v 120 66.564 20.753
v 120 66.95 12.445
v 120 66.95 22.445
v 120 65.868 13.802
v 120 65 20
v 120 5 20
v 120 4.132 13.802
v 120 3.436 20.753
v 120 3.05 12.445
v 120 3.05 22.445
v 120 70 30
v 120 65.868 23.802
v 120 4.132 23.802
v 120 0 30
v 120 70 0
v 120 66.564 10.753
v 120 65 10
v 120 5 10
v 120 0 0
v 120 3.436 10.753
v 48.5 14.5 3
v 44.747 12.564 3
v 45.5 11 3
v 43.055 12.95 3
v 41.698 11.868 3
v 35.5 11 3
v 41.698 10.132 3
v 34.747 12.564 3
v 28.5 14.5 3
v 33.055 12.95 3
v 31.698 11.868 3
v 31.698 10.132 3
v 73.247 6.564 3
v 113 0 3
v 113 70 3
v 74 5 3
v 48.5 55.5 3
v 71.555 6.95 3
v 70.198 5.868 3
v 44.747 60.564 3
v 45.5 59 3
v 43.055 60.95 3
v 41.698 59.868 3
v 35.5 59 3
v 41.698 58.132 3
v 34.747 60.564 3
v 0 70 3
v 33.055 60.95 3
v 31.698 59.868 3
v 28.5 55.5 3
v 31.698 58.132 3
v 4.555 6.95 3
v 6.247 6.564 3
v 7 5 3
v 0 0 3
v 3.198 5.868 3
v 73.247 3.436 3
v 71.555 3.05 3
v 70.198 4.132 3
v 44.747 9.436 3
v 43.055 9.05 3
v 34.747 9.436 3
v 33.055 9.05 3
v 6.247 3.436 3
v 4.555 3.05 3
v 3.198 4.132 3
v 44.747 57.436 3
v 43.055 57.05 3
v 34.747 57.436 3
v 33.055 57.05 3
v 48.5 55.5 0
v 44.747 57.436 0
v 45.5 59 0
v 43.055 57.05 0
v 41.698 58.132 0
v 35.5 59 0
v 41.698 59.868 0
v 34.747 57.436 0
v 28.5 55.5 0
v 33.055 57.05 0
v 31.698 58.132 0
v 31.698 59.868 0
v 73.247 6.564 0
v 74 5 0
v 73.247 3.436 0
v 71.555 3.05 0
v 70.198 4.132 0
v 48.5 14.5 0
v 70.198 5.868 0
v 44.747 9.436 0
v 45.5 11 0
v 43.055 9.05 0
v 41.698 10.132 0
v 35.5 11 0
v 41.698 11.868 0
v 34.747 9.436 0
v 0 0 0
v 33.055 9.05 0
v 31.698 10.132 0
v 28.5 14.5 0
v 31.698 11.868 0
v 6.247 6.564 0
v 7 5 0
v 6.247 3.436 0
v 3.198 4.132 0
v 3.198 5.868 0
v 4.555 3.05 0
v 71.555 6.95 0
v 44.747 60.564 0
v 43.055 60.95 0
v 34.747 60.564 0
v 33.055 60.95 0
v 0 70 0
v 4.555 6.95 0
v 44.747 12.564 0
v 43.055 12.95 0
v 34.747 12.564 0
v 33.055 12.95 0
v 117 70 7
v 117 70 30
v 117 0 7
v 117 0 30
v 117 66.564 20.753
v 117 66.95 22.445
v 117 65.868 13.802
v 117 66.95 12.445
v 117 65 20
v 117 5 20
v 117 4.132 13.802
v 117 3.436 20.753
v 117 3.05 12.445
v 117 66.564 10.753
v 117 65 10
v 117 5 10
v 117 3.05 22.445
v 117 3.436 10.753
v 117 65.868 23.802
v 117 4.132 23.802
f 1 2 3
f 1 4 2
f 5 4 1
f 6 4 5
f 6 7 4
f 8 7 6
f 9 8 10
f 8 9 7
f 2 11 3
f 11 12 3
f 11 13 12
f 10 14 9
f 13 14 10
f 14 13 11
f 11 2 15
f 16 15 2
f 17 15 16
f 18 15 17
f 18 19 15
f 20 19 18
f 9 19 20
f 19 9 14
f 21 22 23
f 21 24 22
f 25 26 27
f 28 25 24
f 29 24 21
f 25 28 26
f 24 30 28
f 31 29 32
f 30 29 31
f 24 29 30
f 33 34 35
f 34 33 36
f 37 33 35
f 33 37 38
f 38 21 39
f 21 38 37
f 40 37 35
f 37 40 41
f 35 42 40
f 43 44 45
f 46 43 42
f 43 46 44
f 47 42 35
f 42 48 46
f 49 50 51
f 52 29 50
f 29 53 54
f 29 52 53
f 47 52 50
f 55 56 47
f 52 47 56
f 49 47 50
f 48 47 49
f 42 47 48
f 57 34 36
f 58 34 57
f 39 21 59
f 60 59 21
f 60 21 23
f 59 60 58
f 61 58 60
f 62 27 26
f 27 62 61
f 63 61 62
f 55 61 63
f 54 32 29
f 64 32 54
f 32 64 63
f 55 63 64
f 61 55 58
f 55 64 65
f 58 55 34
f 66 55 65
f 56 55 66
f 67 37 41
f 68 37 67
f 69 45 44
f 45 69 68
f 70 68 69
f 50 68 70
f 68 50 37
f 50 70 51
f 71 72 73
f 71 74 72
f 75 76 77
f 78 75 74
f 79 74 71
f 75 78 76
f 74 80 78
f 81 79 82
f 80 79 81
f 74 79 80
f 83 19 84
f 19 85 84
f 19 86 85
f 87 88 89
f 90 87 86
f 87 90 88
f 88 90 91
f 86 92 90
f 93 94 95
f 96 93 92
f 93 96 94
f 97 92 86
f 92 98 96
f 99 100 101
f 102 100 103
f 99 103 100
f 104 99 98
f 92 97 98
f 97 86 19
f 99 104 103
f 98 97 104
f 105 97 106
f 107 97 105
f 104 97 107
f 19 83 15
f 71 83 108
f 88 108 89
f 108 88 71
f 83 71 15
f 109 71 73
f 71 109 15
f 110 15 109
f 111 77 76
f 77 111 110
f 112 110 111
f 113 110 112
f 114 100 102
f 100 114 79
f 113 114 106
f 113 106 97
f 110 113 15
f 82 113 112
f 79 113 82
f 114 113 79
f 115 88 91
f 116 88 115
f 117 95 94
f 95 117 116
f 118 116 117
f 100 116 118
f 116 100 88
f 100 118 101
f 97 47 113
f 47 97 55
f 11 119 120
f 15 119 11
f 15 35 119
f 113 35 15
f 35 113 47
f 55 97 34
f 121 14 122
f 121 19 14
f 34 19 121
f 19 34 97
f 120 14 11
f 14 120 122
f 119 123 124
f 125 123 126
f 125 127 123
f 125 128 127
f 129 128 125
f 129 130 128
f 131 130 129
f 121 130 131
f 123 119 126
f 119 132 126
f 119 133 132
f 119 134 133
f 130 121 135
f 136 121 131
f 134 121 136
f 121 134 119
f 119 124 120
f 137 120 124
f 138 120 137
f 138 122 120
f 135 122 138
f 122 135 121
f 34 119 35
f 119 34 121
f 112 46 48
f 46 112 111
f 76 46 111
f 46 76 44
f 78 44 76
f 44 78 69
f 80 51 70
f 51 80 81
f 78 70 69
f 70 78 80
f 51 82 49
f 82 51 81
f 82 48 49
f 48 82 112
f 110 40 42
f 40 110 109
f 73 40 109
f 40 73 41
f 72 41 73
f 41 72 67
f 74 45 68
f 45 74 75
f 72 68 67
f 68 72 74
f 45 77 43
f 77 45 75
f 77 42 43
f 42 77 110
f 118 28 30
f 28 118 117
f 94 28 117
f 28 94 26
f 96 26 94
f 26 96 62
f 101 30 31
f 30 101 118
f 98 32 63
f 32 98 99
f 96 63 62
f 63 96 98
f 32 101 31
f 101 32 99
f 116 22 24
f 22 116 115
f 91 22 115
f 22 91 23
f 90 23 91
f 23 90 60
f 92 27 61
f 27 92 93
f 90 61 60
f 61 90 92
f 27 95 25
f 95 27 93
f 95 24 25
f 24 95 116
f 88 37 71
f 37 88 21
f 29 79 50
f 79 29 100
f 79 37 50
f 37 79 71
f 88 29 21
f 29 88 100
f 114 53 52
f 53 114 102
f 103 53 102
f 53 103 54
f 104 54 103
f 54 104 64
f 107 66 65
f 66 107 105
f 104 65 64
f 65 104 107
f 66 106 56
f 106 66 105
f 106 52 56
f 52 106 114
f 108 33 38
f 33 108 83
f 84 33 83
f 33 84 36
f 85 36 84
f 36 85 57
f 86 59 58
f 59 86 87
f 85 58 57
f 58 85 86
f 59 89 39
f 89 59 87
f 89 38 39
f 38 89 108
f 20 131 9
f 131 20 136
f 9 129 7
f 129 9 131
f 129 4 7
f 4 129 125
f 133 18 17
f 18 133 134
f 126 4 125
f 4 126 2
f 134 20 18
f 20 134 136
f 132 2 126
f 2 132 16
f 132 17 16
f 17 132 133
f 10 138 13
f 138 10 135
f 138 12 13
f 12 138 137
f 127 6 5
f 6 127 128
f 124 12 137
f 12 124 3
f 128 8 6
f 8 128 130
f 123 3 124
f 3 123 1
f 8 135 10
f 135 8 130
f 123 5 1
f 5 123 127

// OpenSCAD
module servo() {
	union() {
		translate([5,40+4,6]) cylinder(10,4/2,4/2);
		translate([15,40+4,6]) cylinder(10,4/2,4/2);
		translate([5,-4,6]) cylinder(10,4/2,4/2);
		translate([15,-4,6]) cylinder(10,4/2,4/2);
		translate([0,-1/2,0])cube([20,41,20]);
		
	}
}

difference() {

// doska s bocnym uchytom	
union() {
	cube([120 , 70, 3]);
	translate([120-3,0,0]) {
		cube([3,70, 30]);
	}
	translate([120-7,0,3]) rotate(45, [0,1,0]){
		cube([3,70, 6]);
	}
}


translate([5,   5,-2.5]) cylinder(10, 4/2, 4/2);
translate([5+67,5,-2.5]) cylinder(10, 4/2, 4/2);
translate([5,   5+105,-2.5]) cylinder(10, 4/2, 4/2);
translate([5+67,5+105,-2.5]) cylinder(10, 4/2, 4/2);
/*
translate([120-6,5+13-10,10]) hull() {
	rotate(90, [0, 1,0]) cylinder(15, 4/2, 4/2);
	translate([0,0,15]) rotate(90, [0, 1,0]) cylinder(15, 4/2, 4/2);
}
translate([120-6,5+13+10,10]) hull() {
	rotate(90, [0, 1,0]) cylinder(15, 4/2, 4/2);
	translate([0,0,15]) rotate(90, [0, 1,0]) cylinder(15, 4/2, 4/2);
}

translate([120-6,5+13-10+110-36,10]) hull() {
	rotate(90, [0, 1,0]) cylinder(15, 4/2, 4/2);
	translate([0,0,15]) rotate(90, [0, 1,0]) cylinder(15, 4/2, 4/2);
}
translate([120-6,5+13+10+110-36,10]) hull() {
	rotate(90, [0, 1,0]) cylinder(15, 4/2, 4/2);
	translate([0,0,15]) rotate(90, [0, 1,0]) cylinder(15, 4/2, 4/2);
}
*/

translate([120-6,5,12]) hull() {
	rotate(90, [0, 1,0]) cylinder(15, 4/2, 4/2);
	translate([0,60,0]) rotate(90, [0, 1, 0]) cylinder(15, 4/2, 4/2);
}
translate([120-6,5,22]) hull() {
	rotate(90, [0, 1,0]) cylinder(15, 4/2, 4/2);
	translate([0,60,0]) rotate(90, [0, 1, 0]) cylinder(15, 4/2, 4/2);
}

translate([67/2-5,105+5+18-10,-10]) servo();
translate([67/2-5,5+20-10,-10]) servo();
}
